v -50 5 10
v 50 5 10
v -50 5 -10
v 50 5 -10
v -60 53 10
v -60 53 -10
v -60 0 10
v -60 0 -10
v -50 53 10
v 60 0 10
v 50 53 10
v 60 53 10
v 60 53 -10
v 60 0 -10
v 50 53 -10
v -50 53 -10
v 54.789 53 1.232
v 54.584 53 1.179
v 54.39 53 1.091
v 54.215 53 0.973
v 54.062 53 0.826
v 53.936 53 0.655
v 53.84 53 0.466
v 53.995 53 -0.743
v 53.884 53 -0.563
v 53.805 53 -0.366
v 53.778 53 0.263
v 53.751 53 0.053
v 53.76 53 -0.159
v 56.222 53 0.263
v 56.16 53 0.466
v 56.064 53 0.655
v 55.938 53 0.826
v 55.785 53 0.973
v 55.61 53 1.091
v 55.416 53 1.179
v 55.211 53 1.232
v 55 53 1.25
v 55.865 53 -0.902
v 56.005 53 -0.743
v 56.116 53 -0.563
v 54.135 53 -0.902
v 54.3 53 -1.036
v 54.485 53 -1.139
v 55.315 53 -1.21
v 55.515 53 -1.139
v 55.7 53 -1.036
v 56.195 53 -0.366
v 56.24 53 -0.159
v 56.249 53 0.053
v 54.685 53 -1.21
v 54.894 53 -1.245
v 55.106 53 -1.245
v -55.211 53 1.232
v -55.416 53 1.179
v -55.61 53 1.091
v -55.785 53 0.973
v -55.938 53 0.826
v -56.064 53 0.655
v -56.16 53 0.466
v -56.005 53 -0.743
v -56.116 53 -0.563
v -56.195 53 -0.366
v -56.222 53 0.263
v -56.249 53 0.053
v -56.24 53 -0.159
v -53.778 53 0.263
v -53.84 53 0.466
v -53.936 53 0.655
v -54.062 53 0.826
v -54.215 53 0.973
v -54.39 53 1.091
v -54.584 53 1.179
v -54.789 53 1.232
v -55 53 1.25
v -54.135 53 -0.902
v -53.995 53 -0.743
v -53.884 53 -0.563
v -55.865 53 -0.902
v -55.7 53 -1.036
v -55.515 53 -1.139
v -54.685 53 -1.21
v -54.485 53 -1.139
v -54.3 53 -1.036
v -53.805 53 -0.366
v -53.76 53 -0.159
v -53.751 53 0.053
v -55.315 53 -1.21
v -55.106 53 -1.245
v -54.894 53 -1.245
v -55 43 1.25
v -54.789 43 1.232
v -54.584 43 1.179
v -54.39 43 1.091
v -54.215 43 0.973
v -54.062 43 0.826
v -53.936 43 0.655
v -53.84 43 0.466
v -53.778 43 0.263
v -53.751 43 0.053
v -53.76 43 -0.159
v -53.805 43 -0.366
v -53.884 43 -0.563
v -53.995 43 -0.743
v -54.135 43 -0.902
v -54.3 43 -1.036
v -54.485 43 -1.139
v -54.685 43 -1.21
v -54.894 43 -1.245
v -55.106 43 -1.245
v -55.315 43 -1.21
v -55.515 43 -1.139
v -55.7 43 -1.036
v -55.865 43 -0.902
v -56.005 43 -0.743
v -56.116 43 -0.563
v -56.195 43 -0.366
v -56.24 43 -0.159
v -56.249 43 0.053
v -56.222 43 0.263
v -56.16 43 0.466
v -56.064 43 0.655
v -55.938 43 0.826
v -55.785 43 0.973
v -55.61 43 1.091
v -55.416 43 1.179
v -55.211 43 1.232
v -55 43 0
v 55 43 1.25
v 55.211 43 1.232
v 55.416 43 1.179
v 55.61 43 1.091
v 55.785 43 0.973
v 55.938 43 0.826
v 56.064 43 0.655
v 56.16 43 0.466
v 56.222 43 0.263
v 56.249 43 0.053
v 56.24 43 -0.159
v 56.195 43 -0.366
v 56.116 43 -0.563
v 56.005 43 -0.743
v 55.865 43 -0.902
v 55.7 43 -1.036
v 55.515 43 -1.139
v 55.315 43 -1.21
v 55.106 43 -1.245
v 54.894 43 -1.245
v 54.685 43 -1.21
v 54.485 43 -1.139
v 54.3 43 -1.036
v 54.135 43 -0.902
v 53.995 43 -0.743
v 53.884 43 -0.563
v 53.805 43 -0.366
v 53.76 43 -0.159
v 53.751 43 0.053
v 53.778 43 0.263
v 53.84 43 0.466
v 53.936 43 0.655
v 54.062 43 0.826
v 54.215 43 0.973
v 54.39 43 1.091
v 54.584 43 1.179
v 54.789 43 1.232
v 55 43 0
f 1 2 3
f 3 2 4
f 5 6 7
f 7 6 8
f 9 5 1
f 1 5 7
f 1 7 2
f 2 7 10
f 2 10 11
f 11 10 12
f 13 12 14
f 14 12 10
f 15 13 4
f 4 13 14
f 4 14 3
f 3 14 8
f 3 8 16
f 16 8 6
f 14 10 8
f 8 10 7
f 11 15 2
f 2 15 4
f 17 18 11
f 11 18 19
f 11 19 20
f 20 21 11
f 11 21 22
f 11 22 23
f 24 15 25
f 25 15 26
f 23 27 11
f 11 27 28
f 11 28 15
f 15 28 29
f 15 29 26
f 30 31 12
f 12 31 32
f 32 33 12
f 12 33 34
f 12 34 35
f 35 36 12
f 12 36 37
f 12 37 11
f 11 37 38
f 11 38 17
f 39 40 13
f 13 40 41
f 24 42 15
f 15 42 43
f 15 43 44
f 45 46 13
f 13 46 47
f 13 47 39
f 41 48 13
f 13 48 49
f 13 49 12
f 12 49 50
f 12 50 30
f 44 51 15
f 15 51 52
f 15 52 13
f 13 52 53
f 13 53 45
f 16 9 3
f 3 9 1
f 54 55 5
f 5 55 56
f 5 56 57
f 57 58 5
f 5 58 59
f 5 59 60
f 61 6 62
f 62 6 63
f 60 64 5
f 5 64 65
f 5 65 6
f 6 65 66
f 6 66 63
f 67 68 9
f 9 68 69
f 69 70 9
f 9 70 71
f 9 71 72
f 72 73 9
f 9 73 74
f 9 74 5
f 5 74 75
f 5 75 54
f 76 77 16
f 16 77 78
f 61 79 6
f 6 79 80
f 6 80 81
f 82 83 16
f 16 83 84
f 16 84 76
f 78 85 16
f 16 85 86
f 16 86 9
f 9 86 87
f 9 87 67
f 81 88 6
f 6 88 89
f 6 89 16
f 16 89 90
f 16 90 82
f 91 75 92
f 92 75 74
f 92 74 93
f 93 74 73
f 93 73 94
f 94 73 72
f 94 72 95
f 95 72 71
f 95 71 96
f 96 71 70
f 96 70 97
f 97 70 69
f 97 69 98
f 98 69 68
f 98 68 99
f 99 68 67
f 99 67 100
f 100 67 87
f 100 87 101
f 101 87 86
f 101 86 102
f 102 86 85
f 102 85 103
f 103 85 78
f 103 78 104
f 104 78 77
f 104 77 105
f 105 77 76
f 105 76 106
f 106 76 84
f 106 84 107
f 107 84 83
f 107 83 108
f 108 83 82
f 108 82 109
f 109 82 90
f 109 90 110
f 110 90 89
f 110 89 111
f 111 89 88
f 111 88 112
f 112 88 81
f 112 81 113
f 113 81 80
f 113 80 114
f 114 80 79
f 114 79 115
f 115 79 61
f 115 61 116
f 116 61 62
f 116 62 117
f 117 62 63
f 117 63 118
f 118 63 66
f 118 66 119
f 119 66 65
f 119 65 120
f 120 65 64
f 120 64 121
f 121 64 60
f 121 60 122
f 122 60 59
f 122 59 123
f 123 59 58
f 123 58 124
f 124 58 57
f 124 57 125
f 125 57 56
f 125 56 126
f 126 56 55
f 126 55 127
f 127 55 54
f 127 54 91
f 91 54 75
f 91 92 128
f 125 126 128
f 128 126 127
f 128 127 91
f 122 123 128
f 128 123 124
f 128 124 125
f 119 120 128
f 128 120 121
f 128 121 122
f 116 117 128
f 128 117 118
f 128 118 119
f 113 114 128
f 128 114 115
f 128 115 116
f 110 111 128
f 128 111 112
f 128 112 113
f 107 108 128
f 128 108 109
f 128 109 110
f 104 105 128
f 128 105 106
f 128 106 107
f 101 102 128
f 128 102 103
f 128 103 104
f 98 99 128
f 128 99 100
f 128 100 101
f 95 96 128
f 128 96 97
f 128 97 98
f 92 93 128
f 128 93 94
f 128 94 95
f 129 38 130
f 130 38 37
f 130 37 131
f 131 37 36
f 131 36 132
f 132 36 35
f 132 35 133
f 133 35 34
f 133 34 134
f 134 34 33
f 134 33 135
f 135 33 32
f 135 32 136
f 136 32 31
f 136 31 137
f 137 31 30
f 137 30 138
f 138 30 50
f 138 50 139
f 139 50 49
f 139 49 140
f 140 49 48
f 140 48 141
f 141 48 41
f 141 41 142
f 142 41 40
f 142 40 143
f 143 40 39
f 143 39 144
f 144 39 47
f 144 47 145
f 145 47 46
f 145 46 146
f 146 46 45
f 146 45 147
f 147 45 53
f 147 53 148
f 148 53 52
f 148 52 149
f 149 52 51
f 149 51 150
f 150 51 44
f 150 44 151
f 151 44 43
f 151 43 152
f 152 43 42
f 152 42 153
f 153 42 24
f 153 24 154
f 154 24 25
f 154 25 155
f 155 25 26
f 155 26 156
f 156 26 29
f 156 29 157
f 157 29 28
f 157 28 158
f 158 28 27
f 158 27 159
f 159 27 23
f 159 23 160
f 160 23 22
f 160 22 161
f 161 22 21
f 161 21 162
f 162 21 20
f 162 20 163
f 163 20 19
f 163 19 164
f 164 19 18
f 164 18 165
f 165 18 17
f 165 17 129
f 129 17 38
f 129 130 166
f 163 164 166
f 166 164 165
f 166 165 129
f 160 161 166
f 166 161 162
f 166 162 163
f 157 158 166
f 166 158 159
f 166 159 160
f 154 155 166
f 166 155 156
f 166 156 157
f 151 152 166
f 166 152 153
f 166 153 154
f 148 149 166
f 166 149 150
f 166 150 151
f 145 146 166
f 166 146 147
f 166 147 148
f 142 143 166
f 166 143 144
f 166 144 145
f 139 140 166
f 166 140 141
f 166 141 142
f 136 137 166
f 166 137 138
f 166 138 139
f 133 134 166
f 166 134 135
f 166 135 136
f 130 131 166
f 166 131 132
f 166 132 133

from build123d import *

# Parameters (mm, degrees)
CROQUIS1_W              = 120
CROQUIS1_H              = 20
SALIENTE_EXTRUIR1_DEPTH = 5
CROQUIS2_W              = 10
CROQUIS2_H              = 20
SALIENTE_EXTRUIR2_DEPTH = 48
CROQUIS3_R              = 1.25
CORTAR_EXTRUIR1_DEPTH   = 10


with BuildPart() as part:
    # Croquis1 → Saliente-Extruir1 (new body)
    with BuildSketch(Plane(origin=(0, 0, 0), x_dir=(1, 0, 0), z_dir=(0, 1, 0))):
        Rectangle(CROQUIS1_W, CROQUIS1_H)
    extrude(amount=SALIENTE_EXTRUIR1_DEPTH)

    # Croquis2 → Saliente-Extruir2 (add)
    with BuildSketch(Plane(origin=(0, 5, 0), x_dir=(1, 0, 0), z_dir=(0, 1, 0))):
        with Locations((55, 0)):
            Rectangle(CROQUIS2_W, CROQUIS2_H)
        with Locations((-55, 0)):
            Rectangle(CROQUIS2_W, CROQUIS2_H)
    extrude(amount=SALIENTE_EXTRUIR2_DEPTH)

    # Croquis3 → Cortar-Extruir1 (cut)
    with BuildSketch(Plane(origin=(0, 53, 0), x_dir=(1, 0, 0), z_dir=(0, 1, 0))):
        with Locations(Location((-55, 0, 0), (0, 0, 270))):
            Circle(CROQUIS3_R)
        with Locations(Location((55, 0, 0), (0, 0, 270))):
            Circle(CROQUIS3_R)
    extrude(amount=-CORTAR_EXTRUIR1_DEPTH, mode=Mode.SUBTRACT)


solid = part.part
